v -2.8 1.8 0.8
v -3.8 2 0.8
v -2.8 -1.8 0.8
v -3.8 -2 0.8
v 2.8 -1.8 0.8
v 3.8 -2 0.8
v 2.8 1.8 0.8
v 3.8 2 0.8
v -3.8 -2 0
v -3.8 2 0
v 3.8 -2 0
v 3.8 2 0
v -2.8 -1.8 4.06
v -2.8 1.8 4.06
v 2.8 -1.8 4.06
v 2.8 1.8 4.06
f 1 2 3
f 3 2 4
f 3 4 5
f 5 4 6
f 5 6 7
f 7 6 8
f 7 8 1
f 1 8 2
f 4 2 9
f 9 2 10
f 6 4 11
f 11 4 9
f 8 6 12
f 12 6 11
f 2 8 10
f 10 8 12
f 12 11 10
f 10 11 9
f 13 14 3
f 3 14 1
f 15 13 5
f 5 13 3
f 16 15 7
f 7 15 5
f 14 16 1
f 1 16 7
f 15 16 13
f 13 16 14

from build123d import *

# Parameters (mm, degrees)
SKETCH_1_W   = 7.6
SKETCH_1_H   = 4
FLANGE_DEPTH = 0.8
SKETCH_2_W   = 5.6
SKETCH_2_H   = 3.6
HEAD_DEPTH   = 4.06


with BuildPart() as part:
    # 草圖1 → flange (new body)
    with BuildSketch(Plane.XY):
        Rectangle(SKETCH_1_W, SKETCH_1_H)
    extrude(amount=FLANGE_DEPTH)

    # 草圖2 → head (add)
    with BuildSketch(Plane.XY):
        Rectangle(SKETCH_2_W, SKETCH_2_H)
    extrude(amount=HEAD_DEPTH)


solid = part.part
